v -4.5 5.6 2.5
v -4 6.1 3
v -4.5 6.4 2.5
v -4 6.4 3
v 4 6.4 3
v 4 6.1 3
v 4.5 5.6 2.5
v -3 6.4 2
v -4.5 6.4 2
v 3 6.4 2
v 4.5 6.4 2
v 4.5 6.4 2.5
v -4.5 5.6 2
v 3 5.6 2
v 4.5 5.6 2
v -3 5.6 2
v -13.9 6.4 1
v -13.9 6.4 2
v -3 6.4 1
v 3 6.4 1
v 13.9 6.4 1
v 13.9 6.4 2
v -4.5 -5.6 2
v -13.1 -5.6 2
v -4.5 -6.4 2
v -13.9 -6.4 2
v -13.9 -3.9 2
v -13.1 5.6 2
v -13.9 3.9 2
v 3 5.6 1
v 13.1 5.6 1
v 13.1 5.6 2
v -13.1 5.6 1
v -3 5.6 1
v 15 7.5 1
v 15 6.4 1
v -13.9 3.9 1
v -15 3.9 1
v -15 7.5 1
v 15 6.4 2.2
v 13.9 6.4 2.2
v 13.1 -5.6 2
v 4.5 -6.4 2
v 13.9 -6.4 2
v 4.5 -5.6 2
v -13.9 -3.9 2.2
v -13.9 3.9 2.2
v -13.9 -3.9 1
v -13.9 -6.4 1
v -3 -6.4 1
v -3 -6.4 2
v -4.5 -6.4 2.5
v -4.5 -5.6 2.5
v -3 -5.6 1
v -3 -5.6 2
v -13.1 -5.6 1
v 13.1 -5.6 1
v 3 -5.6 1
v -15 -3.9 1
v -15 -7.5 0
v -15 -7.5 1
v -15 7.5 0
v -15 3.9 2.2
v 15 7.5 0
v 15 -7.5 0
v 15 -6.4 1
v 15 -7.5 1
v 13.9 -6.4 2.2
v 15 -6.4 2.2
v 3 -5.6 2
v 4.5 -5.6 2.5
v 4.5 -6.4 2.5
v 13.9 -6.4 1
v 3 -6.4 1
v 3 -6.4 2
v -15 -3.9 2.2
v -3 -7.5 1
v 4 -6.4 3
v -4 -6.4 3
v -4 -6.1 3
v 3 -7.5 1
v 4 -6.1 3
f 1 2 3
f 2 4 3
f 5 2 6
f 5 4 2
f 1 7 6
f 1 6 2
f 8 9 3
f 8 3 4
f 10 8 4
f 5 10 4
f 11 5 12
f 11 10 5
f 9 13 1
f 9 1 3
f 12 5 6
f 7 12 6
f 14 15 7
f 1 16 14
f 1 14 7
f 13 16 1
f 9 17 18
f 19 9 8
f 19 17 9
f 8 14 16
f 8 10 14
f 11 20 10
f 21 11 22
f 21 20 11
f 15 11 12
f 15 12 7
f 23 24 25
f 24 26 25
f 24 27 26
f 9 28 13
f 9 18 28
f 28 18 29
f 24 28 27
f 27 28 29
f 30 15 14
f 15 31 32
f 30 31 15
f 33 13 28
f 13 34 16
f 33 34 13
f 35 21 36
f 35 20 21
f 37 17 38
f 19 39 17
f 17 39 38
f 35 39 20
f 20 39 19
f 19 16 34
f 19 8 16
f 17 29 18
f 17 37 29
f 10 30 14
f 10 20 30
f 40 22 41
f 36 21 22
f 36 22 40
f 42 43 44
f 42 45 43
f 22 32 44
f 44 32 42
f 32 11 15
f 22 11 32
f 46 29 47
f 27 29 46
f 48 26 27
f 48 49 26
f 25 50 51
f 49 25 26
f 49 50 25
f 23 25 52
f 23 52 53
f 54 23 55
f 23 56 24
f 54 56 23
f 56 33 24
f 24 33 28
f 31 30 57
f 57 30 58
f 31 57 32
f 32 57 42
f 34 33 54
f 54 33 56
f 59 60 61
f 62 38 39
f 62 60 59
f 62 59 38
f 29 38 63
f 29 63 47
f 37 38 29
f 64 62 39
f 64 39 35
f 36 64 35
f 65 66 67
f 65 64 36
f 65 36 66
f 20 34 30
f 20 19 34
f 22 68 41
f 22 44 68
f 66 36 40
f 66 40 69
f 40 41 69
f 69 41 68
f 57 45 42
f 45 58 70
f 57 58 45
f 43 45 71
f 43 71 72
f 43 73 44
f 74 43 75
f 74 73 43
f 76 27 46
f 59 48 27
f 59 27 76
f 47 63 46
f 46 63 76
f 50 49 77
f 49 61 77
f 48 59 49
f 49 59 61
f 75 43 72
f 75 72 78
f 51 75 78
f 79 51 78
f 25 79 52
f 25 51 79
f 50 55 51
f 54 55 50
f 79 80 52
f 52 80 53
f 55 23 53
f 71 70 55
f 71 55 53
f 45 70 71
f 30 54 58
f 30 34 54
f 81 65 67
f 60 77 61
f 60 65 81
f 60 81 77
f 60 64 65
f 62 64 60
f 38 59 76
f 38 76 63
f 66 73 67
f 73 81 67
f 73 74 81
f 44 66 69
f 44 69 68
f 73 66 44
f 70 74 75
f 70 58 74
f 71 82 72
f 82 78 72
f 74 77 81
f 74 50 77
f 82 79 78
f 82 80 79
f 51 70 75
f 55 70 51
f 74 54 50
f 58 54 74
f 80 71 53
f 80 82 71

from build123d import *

# Parameters (mm, degrees)
SKETCH_W        = 30
SKETCH_H        = 15
PAD_DEPTH       = 1
SKETCH001_W     = 27.8
SKETCH001_H     = 12.8
SKETCH001_W_2   = 26.2
SKETCH001_H_2   = 11.2
PAD001_DEPTH    = 1
SKETCH002_W     = 1.1
SKETCH002_H     = 7.8
SKETCH002_H_2   = 12.8
PAD002_DEPTH    = 1.2
SKETCH003_W     = 9
SKETCH003_H     = 0.8
PAD003_DEPTH    = 1
SKETCH004_W     = 6
SKETCH004_H     = 1
POCKET_DEPTH    = 13.901
CHAMFER_SIZE    = 0.5
CHAMFER001_SIZE = 0.5


with BuildPart() as part:
    # Sketch → Pad (new body)
    with BuildSketch(Plane.XY):
        Rectangle(SKETCH_W, SKETCH_H)
    extrude(amount=PAD_DEPTH)

    # Sketch001 (on Face6 of Pad) → Pad001 (join)
    with BuildSketch(Plane.XY.offset(1)):
        Rectangle(SKETCH001_W, SKETCH001_H)
        Rectangle(SKETCH001_W_2, SKETCH001_H_2, mode=Mode.SUBTRACT)
    extrude(amount=PAD001_DEPTH)

    # Sketch002 (on Face5 of Pad001) → Pad002 (join)
    with BuildSketch(Plane.XY.offset(1)):
        with Locations((-14.45, 0)):
            Rectangle(SKETCH002_W, SKETCH002_H)
        with Locations((14.45, 0)):
            Rectangle(SKETCH002_W, SKETCH002_H_2)
    extrude(amount=PAD002_DEPTH)

    # Sketch003 (on Face21 of Pad002) → Pad003 (join)
    with BuildSketch(Plane.XY.offset(2)):
        with Locations((0, 6)):
            Rectangle(SKETCH003_W, SKETCH003_H)
        with Locations((0, -6)):
            Rectangle(SKETCH003_W, SKETCH003_H)
    extrude(amount=PAD003_DEPTH)

    # Sketch004 (on Face12 of Pad003) → Pocket (cut, through all)
    with BuildSketch(Plane(origin=(0, 6.4, 0), x_dir=(-1, 0, 0), z_dir=(0, 1, 0))):
        with Locations((0, 1.5)):
            Rectangle(SKETCH004_W, SKETCH004_H)
    extrude(amount=-POCKET_DEPTH, mode=Mode.SUBTRACT)

    # Chamfer
    chamfer_edges = [part.edges().sort_by_distance(p)[0] for p in [
        (-4.5, -6, 3),
        (-4.5, 6, 3),
        (4.5, 6, 3),
        (4.5, -6, 3),
    ]]
    chamfer(chamfer_edges, length=CHAMFER_SIZE)

    # Chamfer001
    chamfer001_edges = [part.edges().sort_by_distance(p)[0] for p in [
        (0, 5.6, 3),
        (0, -5.6, 3),
    ]]
    chamfer(chamfer001_edges, length=CHAMFER001_SIZE)


solid = part.part
